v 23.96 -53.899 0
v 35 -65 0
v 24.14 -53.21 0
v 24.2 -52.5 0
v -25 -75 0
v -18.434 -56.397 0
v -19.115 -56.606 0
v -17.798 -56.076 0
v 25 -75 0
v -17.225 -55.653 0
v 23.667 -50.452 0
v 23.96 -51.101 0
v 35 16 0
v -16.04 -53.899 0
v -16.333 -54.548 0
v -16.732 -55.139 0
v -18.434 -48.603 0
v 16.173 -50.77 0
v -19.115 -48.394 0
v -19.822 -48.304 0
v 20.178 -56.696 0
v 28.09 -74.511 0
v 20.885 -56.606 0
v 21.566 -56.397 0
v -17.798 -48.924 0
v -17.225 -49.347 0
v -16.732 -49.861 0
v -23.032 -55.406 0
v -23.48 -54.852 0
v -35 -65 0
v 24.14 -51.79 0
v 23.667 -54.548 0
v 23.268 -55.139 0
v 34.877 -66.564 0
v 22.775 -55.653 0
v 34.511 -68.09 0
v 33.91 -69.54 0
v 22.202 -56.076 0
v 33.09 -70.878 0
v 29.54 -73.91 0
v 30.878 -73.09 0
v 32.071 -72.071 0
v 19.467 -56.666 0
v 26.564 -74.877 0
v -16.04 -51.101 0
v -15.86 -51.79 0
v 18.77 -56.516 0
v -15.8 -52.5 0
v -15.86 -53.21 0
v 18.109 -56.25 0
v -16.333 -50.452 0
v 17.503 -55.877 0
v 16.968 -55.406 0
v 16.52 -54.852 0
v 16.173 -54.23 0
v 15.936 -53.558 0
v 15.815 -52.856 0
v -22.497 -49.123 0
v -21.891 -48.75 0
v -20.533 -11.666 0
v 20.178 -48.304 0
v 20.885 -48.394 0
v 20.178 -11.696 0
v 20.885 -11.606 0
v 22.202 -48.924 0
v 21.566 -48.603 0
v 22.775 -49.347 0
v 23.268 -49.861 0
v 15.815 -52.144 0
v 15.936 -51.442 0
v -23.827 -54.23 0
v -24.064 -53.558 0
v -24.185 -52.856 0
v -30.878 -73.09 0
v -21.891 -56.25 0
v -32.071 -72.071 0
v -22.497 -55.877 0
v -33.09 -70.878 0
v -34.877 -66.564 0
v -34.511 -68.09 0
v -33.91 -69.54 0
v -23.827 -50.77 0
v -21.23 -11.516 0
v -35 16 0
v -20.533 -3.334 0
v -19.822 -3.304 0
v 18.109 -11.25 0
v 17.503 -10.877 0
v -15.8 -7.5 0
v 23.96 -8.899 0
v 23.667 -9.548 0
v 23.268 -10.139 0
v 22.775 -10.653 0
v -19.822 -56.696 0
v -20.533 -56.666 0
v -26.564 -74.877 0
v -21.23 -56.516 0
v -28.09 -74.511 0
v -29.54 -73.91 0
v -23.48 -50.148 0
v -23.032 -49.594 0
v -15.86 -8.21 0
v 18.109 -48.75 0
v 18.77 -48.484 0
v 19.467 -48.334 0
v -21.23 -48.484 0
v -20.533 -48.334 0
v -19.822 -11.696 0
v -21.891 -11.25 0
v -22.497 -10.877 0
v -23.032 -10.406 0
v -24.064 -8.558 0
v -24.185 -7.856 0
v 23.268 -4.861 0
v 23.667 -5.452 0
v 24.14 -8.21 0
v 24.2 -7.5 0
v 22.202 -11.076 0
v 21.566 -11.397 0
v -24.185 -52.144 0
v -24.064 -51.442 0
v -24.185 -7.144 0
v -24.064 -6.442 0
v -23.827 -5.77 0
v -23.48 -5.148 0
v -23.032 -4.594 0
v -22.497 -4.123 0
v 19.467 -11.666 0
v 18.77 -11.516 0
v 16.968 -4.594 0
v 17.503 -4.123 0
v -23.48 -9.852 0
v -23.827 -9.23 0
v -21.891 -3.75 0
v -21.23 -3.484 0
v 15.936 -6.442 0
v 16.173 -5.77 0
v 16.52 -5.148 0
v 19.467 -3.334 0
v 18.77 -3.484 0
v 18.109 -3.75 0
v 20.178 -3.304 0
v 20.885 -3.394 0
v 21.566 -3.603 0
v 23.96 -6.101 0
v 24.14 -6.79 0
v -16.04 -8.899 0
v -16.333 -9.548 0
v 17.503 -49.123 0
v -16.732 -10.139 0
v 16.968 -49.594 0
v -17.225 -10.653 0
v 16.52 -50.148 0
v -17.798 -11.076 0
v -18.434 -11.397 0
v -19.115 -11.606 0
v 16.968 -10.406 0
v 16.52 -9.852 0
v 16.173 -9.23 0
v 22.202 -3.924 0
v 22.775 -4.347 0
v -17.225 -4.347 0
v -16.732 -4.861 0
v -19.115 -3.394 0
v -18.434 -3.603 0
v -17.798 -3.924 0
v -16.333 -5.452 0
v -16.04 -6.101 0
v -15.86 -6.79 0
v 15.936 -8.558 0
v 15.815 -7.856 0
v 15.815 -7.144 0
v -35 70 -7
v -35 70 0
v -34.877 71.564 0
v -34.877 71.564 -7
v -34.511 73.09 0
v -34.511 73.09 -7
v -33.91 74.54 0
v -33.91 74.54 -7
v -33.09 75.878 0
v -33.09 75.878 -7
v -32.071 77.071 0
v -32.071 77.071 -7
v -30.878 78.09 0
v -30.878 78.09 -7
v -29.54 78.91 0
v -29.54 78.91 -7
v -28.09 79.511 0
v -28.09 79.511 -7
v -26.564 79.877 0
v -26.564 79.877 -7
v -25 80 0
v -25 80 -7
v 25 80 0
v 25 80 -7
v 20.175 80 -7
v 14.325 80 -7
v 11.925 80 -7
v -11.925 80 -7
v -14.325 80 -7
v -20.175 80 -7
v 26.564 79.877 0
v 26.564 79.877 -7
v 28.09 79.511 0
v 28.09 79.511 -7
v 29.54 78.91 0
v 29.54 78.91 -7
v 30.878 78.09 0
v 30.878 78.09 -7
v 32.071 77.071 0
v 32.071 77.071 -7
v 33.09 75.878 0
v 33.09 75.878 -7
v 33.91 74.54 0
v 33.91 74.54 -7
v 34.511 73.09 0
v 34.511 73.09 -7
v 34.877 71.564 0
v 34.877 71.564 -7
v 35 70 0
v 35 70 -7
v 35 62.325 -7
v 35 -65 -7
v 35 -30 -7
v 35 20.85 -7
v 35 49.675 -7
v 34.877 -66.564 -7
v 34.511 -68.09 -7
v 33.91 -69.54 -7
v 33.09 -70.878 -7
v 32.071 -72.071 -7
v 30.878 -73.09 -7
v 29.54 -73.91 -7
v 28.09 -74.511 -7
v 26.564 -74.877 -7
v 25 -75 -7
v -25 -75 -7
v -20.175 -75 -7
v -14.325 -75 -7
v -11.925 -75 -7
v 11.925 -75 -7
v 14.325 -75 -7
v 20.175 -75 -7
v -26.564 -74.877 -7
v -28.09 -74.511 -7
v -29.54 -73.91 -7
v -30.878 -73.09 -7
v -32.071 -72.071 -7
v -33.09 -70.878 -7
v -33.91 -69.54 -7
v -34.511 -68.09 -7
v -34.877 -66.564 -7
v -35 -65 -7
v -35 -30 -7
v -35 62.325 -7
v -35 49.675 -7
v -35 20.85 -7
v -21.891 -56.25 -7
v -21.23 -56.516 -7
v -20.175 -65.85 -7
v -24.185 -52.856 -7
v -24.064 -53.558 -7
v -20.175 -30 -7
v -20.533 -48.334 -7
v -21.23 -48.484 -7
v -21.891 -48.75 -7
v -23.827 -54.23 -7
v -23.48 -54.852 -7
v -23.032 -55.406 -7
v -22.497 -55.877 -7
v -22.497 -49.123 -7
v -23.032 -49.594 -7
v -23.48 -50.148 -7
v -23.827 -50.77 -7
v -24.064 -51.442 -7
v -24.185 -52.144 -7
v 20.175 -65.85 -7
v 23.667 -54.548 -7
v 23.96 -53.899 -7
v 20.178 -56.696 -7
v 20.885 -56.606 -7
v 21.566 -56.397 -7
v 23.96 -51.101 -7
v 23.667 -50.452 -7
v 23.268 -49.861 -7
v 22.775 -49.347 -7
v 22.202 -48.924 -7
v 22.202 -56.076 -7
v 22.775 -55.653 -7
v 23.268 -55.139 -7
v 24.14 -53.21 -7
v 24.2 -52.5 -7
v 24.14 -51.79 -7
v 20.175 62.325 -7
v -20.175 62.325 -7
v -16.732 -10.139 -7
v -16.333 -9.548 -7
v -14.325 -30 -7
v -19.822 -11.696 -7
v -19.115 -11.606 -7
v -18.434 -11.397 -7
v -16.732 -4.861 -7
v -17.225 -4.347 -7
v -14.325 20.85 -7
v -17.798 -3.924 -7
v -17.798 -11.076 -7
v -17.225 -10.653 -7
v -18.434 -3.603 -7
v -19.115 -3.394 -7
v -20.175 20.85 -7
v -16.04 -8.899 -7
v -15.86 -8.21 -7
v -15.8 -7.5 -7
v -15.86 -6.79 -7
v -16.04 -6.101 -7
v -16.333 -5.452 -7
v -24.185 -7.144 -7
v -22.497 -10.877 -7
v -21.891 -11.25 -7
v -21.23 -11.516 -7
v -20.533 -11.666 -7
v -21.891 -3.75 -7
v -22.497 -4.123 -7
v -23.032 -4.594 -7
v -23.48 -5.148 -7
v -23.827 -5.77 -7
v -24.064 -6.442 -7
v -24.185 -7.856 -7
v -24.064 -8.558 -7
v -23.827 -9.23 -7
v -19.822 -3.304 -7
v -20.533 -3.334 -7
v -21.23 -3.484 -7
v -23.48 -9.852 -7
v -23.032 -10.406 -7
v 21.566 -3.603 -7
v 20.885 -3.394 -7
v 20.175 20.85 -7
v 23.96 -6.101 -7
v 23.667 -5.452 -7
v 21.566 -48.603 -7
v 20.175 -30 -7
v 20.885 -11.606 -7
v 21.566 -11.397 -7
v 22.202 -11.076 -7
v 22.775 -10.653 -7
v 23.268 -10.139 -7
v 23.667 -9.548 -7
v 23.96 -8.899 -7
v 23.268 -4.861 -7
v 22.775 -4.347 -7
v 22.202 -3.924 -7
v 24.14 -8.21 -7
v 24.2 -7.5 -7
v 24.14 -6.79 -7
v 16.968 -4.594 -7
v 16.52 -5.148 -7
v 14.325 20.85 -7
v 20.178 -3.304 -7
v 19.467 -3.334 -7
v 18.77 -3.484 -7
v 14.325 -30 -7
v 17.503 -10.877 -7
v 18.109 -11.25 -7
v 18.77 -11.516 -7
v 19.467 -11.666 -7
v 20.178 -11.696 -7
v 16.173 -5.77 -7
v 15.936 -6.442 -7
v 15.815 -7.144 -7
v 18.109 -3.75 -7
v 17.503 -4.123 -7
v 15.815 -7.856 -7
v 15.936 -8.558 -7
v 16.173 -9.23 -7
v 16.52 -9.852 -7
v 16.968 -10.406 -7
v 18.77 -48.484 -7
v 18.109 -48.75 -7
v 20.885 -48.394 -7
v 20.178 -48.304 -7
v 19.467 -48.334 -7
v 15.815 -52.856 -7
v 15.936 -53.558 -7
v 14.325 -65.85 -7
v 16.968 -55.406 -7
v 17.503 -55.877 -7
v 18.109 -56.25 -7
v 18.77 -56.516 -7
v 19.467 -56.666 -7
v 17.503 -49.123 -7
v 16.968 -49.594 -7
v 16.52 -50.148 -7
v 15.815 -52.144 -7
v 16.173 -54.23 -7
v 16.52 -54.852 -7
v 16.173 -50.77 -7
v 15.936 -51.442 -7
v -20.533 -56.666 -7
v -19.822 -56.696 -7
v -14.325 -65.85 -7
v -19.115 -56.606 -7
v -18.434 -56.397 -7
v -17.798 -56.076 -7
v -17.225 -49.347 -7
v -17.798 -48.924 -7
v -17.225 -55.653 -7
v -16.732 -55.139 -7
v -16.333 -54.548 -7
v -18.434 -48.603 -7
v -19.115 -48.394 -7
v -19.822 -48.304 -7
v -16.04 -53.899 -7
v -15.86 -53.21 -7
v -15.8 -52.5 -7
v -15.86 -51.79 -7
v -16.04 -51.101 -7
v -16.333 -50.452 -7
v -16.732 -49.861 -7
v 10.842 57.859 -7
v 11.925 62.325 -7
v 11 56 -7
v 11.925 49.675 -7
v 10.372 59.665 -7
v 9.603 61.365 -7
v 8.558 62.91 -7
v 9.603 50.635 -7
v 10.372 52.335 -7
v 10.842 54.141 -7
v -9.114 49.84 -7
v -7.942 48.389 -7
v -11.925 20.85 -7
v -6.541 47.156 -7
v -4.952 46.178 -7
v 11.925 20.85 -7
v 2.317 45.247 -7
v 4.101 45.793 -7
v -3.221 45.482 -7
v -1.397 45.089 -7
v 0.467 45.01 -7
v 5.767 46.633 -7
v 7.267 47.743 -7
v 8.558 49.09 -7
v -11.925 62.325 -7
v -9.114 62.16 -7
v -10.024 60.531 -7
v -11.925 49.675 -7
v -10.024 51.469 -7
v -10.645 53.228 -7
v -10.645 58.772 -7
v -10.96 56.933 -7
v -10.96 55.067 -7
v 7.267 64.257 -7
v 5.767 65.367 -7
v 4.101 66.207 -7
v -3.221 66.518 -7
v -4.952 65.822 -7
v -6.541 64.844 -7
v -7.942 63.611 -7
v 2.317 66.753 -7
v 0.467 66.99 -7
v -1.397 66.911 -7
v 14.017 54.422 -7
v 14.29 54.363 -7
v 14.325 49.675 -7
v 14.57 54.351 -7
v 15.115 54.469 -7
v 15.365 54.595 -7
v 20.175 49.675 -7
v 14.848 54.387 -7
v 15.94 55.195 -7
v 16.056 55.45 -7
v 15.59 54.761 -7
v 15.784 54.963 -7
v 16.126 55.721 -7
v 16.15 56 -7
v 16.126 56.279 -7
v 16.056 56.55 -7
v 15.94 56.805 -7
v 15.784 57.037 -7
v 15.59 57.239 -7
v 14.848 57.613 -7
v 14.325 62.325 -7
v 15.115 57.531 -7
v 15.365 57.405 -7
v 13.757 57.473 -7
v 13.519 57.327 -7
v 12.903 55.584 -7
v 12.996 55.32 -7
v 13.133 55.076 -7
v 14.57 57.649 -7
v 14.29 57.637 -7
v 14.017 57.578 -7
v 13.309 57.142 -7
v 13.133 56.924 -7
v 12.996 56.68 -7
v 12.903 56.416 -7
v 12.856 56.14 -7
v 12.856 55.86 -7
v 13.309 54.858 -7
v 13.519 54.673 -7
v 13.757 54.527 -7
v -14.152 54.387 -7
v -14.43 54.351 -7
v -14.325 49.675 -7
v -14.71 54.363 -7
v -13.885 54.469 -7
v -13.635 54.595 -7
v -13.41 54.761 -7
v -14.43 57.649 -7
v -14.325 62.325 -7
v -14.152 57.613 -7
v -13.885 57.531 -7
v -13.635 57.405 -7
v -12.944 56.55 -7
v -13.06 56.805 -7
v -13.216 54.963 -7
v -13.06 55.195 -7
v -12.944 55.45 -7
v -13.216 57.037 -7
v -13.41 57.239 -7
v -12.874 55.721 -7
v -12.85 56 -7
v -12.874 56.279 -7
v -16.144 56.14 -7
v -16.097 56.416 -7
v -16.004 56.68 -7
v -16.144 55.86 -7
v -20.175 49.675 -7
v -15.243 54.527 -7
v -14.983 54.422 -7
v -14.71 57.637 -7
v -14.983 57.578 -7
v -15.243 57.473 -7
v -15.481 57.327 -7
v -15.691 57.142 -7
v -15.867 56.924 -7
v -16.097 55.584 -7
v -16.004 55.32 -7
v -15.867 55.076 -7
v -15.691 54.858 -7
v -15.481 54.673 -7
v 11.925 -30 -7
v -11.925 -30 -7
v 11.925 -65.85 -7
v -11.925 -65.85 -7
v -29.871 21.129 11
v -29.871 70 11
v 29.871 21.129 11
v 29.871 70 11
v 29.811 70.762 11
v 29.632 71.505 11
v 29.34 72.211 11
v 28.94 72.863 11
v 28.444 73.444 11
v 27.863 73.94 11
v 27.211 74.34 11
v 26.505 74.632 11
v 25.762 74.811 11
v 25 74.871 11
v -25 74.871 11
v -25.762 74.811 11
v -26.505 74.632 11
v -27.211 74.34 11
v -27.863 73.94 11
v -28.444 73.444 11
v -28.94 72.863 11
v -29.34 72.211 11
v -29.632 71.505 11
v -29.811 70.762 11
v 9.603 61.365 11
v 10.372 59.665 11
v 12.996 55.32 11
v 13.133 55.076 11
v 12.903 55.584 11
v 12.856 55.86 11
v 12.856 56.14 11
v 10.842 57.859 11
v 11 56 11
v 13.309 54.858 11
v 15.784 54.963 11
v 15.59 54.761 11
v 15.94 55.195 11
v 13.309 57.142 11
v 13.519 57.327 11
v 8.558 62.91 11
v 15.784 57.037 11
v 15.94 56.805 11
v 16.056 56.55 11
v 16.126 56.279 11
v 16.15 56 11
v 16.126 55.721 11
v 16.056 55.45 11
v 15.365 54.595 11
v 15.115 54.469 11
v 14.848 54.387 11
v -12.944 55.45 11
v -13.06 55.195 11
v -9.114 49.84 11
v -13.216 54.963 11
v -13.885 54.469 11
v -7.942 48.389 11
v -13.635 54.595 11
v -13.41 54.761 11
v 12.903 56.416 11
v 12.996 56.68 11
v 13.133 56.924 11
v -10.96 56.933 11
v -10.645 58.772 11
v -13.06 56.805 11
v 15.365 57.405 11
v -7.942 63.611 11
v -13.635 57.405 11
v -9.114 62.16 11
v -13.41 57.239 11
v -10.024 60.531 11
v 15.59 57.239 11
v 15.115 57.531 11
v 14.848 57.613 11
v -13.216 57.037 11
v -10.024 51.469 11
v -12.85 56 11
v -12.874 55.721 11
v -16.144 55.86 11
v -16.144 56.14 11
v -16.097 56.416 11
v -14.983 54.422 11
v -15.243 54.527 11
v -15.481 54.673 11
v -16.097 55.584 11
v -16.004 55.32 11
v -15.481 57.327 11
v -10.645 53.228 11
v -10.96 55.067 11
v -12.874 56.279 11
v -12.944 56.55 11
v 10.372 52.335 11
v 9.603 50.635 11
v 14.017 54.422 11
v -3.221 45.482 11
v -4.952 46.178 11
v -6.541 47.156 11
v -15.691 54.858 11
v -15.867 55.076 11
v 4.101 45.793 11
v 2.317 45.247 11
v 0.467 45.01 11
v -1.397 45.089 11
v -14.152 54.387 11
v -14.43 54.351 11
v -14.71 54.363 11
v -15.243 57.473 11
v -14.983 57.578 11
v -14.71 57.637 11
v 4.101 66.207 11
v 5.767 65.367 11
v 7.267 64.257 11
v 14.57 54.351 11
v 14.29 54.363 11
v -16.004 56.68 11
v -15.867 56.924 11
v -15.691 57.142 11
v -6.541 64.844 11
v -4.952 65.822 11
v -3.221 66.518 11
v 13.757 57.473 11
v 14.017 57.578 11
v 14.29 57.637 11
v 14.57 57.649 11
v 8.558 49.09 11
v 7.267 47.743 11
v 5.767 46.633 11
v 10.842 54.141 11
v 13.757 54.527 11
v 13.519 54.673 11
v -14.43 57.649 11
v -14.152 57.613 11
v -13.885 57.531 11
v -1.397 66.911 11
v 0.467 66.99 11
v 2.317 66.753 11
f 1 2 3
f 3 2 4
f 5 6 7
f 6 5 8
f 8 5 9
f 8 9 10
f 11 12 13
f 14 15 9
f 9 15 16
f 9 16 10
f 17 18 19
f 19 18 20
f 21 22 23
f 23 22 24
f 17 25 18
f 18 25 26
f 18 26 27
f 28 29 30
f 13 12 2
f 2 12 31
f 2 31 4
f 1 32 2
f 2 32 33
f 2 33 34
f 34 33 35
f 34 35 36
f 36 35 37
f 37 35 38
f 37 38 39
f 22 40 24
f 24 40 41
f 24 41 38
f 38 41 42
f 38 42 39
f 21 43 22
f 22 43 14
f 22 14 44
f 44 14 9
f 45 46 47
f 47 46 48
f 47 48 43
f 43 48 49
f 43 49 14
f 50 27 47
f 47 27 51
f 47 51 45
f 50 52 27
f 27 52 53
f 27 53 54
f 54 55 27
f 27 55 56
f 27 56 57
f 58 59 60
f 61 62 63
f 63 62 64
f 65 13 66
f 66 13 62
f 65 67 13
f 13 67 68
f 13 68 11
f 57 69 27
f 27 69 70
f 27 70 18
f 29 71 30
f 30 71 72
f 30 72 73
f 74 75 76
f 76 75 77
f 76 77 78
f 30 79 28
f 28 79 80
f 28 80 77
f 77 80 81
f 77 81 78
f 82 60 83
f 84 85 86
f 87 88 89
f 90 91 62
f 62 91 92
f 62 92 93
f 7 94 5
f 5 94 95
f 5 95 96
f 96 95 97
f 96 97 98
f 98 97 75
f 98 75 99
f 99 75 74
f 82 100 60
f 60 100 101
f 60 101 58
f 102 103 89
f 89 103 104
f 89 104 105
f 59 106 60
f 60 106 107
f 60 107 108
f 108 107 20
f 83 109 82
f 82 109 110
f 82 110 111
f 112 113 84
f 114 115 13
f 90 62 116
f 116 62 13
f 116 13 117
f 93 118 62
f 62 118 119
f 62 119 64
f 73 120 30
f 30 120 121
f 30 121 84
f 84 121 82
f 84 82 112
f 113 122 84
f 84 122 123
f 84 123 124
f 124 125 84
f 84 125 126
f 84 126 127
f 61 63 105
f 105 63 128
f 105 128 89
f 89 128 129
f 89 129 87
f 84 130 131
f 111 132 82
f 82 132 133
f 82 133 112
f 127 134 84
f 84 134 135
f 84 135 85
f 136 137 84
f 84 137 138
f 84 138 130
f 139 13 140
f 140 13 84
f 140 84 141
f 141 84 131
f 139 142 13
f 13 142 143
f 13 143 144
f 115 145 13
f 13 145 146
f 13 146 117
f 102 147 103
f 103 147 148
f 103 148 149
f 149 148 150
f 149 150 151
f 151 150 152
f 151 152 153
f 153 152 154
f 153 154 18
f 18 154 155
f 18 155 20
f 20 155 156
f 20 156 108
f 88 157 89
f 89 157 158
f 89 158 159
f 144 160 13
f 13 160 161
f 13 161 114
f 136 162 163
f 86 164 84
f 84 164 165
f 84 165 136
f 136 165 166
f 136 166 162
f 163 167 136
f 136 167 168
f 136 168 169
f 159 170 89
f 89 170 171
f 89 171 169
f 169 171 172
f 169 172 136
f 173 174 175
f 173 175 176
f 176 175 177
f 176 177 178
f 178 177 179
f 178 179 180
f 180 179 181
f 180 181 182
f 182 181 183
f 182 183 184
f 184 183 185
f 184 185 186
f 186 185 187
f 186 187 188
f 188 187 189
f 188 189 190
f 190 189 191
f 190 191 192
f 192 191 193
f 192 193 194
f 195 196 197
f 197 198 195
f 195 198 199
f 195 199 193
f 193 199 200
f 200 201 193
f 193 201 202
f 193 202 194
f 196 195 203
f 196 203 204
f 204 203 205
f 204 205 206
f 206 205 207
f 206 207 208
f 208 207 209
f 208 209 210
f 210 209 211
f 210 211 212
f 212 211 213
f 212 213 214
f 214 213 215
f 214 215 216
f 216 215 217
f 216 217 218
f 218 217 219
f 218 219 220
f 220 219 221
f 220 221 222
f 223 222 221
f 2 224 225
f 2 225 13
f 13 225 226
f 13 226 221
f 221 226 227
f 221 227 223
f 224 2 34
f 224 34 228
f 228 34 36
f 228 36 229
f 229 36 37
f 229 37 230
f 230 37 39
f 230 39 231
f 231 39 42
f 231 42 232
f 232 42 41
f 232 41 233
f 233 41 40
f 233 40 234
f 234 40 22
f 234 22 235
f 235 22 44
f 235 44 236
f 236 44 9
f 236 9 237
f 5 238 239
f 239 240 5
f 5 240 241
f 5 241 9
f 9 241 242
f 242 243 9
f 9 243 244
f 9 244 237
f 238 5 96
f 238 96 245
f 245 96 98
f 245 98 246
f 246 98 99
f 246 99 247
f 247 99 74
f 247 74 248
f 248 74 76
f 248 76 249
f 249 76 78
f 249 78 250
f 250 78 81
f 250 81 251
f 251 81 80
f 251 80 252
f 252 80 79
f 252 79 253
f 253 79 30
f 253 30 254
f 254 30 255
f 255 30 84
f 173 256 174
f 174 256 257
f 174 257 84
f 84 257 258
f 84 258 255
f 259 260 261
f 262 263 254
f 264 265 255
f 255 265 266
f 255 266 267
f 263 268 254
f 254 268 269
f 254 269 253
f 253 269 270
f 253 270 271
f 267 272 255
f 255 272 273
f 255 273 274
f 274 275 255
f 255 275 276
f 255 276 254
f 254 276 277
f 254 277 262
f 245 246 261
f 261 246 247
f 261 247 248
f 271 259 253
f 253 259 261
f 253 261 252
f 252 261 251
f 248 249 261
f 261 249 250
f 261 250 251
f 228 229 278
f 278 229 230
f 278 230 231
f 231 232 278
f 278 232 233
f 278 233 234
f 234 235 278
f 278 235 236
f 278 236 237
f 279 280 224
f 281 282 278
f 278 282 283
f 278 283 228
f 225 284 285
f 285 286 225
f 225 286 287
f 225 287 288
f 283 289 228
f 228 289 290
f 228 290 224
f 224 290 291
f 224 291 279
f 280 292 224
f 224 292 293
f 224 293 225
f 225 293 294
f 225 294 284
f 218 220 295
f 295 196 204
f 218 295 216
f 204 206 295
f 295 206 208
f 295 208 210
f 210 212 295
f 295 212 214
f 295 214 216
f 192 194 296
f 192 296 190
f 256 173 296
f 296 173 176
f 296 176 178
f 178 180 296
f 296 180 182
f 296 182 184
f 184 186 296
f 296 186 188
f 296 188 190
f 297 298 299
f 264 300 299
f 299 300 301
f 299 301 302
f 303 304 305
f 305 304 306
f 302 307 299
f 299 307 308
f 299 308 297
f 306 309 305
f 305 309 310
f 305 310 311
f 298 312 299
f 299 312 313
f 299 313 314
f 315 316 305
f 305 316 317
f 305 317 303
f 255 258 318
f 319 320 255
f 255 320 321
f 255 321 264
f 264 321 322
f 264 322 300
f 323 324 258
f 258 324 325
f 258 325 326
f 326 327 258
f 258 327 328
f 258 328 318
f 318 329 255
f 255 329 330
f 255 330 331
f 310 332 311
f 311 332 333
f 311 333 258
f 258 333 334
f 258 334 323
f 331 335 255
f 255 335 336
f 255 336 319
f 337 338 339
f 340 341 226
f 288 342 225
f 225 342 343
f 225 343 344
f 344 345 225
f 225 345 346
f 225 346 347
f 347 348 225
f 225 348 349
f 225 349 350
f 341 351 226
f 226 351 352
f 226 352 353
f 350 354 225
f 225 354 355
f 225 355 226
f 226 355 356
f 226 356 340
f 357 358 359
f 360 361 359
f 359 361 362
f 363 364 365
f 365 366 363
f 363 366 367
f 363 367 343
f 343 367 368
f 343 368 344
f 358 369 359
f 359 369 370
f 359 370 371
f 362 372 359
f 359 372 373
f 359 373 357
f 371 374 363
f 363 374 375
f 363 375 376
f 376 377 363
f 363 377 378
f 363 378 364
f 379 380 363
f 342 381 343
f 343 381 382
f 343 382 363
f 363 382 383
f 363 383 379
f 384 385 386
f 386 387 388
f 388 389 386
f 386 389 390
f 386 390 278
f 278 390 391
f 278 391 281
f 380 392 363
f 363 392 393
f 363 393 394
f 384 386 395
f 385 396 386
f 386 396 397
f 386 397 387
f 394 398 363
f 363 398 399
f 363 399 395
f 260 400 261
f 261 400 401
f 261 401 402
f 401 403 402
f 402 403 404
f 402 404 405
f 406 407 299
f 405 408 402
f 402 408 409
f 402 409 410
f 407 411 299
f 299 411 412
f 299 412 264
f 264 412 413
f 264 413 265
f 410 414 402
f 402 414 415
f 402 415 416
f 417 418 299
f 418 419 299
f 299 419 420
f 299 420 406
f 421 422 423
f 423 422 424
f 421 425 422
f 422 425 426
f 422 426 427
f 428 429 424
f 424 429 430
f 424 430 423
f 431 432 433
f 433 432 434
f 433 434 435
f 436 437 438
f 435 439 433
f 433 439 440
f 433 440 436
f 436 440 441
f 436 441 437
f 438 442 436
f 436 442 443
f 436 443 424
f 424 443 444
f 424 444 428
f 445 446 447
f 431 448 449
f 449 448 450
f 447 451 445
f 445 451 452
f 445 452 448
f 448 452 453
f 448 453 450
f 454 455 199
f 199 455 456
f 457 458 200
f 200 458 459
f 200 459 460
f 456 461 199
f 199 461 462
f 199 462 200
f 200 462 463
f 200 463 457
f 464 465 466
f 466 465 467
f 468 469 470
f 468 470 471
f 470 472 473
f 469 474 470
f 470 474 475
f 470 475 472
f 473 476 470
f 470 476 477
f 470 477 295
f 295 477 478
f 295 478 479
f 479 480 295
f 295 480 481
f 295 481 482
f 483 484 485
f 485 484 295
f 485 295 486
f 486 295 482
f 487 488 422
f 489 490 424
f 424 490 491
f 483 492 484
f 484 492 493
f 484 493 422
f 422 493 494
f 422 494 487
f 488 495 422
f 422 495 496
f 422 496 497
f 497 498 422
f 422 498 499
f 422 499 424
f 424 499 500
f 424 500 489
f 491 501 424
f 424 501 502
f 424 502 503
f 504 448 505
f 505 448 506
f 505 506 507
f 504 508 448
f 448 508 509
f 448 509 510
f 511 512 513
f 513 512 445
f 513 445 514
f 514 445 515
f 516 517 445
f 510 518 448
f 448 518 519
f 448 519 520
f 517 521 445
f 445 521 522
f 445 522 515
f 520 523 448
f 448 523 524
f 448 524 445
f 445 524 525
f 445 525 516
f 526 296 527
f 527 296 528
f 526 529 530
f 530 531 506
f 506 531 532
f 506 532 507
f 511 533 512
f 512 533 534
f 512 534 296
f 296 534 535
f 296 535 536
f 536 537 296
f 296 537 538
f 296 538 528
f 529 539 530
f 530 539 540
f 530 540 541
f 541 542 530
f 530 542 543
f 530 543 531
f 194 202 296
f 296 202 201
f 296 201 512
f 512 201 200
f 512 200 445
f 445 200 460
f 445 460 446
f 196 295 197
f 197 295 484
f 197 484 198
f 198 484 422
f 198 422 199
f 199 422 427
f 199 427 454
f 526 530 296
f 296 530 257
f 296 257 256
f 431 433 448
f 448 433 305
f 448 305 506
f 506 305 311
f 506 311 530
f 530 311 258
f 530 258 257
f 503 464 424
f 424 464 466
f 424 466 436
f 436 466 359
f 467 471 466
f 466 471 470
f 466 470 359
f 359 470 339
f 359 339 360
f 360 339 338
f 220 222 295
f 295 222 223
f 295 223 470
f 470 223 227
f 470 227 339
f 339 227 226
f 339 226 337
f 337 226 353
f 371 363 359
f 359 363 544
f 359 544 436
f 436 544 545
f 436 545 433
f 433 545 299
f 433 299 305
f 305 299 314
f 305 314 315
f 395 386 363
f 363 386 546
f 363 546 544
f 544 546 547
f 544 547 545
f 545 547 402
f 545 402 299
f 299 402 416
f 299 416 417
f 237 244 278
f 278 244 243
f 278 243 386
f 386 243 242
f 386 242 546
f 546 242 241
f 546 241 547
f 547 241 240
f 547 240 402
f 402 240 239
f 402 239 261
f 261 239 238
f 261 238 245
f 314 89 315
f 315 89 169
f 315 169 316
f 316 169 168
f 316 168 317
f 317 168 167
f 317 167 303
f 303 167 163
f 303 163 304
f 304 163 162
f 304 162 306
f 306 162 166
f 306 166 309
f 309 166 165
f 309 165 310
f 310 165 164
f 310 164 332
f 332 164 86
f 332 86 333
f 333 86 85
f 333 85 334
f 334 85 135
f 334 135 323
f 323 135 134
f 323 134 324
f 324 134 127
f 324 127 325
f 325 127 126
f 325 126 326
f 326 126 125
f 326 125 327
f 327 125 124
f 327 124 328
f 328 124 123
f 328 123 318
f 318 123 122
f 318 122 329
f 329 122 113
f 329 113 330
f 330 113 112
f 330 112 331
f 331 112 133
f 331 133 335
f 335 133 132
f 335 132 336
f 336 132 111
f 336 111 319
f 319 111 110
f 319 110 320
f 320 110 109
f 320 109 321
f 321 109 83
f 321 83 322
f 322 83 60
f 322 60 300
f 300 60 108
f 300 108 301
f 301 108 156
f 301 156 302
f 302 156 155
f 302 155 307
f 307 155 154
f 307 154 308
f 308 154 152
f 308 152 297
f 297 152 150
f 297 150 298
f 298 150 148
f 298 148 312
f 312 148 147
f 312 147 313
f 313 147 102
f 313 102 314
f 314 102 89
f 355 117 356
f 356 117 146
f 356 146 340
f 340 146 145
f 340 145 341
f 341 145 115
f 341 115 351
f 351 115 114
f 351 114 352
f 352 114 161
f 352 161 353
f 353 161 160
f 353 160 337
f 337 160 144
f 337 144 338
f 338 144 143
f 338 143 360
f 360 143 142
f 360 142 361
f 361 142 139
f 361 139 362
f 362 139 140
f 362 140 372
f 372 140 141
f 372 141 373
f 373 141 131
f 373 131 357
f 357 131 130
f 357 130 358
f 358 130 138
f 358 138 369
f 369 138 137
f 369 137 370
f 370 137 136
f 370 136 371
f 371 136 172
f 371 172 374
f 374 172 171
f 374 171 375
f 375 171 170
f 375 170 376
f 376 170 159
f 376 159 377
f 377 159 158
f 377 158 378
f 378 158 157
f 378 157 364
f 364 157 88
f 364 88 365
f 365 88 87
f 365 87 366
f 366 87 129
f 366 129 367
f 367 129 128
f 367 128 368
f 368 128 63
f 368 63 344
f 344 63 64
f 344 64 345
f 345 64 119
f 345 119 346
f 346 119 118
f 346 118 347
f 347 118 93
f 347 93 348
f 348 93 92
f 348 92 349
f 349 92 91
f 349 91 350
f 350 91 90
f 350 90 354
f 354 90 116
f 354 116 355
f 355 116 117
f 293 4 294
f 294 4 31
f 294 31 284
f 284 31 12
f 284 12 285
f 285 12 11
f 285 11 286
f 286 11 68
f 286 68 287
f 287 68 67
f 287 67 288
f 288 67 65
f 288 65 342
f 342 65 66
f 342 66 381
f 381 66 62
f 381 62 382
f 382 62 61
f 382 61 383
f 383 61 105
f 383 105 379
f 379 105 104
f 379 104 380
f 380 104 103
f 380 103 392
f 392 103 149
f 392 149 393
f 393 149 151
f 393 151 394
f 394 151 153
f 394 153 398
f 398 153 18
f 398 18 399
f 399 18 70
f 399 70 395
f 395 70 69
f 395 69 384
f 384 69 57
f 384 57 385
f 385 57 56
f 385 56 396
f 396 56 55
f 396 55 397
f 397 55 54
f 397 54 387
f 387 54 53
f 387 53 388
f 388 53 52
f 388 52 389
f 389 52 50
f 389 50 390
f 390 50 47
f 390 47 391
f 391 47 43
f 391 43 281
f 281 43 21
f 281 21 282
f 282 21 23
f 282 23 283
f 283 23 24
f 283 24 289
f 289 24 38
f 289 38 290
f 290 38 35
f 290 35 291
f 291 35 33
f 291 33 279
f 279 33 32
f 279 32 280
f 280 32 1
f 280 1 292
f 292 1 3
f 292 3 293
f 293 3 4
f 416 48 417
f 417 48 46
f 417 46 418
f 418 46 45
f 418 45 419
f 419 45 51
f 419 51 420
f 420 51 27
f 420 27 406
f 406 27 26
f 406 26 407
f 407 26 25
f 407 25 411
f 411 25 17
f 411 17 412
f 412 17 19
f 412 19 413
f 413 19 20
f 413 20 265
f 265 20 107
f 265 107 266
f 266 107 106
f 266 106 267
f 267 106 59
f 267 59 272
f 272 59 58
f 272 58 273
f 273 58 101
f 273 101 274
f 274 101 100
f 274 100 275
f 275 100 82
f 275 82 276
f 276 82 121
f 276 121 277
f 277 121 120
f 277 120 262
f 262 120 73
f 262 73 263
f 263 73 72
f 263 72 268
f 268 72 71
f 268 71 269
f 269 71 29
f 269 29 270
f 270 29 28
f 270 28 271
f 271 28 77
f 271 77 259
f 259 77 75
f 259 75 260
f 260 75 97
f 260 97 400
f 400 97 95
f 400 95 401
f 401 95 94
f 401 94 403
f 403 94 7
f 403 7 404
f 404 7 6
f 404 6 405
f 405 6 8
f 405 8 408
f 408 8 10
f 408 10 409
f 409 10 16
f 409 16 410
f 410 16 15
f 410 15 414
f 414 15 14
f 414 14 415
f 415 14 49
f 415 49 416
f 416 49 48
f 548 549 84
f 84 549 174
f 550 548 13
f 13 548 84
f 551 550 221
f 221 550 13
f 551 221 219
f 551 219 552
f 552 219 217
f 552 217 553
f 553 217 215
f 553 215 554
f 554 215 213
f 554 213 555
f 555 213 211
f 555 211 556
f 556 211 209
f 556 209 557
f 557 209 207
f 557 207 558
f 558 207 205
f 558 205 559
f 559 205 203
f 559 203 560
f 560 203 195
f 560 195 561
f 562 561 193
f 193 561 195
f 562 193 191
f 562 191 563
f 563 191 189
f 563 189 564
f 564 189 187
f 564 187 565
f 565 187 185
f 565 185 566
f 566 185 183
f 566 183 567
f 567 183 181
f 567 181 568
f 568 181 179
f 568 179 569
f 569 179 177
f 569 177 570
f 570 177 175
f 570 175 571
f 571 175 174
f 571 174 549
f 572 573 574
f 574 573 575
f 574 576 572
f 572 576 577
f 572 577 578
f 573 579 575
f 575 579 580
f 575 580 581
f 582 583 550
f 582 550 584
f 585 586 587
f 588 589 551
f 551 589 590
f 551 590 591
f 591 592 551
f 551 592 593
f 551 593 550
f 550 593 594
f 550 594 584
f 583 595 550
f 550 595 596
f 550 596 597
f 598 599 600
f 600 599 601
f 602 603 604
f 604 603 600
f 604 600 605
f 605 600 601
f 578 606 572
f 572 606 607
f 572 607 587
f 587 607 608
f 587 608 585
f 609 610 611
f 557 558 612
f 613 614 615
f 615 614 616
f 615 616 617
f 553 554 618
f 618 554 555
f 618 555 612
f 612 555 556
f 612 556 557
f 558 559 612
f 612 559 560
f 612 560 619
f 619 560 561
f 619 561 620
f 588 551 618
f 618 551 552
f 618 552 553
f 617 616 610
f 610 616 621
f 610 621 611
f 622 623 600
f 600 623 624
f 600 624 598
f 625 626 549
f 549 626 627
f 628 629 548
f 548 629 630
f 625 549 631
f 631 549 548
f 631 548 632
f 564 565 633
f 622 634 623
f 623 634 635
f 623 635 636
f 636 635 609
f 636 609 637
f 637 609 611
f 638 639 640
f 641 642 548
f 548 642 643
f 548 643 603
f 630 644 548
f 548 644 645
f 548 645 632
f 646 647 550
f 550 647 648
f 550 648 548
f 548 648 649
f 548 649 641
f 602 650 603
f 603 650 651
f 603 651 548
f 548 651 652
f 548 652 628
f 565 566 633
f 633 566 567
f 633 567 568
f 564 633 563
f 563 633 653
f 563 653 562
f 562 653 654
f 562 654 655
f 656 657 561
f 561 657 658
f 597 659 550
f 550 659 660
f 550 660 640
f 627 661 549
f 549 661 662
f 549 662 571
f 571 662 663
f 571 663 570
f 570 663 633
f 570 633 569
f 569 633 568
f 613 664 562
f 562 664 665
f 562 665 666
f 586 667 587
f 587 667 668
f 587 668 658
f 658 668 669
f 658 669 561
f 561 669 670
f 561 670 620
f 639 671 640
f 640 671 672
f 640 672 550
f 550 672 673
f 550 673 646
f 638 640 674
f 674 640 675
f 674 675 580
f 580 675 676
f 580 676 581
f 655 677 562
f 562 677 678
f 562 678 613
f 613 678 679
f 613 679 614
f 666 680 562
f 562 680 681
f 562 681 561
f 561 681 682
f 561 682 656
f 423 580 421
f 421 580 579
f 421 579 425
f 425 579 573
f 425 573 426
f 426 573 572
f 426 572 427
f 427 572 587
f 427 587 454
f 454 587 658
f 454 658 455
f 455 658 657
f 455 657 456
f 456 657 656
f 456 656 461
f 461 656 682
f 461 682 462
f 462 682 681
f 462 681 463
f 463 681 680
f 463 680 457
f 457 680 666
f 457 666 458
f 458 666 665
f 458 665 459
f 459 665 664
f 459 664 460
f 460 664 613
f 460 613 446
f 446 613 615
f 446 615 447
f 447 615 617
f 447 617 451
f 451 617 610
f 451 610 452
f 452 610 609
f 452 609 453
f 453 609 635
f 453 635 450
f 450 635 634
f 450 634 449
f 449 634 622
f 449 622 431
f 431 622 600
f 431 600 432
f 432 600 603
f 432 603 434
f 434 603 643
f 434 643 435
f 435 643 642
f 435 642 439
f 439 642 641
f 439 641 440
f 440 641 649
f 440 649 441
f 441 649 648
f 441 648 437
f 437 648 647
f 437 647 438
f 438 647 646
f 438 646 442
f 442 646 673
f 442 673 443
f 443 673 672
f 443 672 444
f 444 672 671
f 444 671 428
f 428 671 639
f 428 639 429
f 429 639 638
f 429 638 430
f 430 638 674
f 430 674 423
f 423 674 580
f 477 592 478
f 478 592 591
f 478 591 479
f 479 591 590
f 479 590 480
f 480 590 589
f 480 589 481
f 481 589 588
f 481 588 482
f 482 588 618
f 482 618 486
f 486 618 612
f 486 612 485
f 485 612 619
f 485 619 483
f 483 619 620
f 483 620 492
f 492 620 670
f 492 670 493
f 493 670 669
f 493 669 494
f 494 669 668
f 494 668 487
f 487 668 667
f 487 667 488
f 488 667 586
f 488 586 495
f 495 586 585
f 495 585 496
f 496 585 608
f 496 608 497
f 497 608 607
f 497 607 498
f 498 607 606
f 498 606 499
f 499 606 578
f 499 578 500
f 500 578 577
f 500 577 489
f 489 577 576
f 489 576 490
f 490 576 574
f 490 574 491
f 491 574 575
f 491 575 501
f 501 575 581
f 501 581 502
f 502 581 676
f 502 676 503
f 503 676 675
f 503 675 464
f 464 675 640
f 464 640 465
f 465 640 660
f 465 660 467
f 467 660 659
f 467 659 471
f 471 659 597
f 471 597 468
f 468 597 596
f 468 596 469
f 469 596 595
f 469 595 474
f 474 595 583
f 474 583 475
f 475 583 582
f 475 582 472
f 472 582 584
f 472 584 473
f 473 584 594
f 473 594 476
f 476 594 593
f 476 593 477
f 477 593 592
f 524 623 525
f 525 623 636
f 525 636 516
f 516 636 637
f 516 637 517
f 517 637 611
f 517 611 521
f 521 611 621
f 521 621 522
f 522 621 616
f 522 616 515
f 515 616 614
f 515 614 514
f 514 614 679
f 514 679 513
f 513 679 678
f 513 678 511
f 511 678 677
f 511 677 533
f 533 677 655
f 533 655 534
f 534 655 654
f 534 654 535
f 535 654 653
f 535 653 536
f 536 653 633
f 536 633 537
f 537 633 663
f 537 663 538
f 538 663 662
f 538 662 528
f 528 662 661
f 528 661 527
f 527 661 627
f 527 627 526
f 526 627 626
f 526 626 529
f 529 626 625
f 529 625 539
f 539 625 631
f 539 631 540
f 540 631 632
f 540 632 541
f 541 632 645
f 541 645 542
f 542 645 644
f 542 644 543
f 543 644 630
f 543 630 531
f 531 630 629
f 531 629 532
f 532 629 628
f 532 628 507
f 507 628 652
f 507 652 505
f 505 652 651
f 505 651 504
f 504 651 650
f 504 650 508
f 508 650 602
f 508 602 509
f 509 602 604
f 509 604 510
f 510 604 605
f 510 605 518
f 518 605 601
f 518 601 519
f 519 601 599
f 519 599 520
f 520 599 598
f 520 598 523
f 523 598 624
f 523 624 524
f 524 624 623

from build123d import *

# Parameters (mm, degrees)
SKETCH1_R           = 4.2
BOSS_EXTRUDE1_DEPTH = 7
BOSS_EXTRUDE2_DEPTH = 11
BOSS_EXTRUDE2_TAPER = 25
SKETCH5_R           = 1.65
SKETCH5_R_2         = 11
CUT_EXTRUDE1_DEPTH  = 19


with BuildPart() as part:
    # Sketch1 → Boss-Extrude1 (new body)
    with BuildSketch(Plane.XY):
        with BuildLine():
            Line((-25, 80), (25, 80))
            ThreePointArc((25, 80), (32.071067812, 77.071067812), (35, 70))
            Line((35, 70), (35, -65))
            ThreePointArc((35, -65), (32.071067812, -72.071067812), (25, -75))
            Line((25, -75), (-25, -75))
            ThreePointArc((-25, -75), (-32.071067812, -72.071067812), (-35, -65))
            Line((-35, -65), (-35, 70))
            ThreePointArc((-35, 70), (-32.071067812, 77.071067812), (-25, 80))
        make_face()
        with Locations((-20, -7.5)):
            Circle(SKETCH1_R, mode=Mode.SUBTRACT)
        with Locations((20, -7.5)):
            Circle(SKETCH1_R, mode=Mode.SUBTRACT)
        with Locations((20, -52.5)):
            Circle(SKETCH1_R, mode=Mode.SUBTRACT)
        with Locations((-20, -52.5)):
            Circle(SKETCH1_R, mode=Mode.SUBTRACT)
    extrude(amount=-BOSS_EXTRUDE1_DEPTH)

    # Sketch3 → Boss-Extrude2 (add)
    with BuildSketch(Plane.XY):
        with BuildLine():
            Line((-35, 16), (35, 16))
            Line((35, 16), (35, 70))
            ThreePointArc((35, 70), (32.071067812, 77.071067812), (25, 80))
            Line((25, 80), (-25, 80))
            ThreePointArc((-25, 80), (-32.071067812, 77.071067812), (-35, 70))
            Line((-35, 70), (-35, 16))
        make_face()
    extrude(amount=BOSS_EXTRUDE2_DEPTH, taper=BOSS_EXTRUDE2_TAPER)

    # Sketch5 → Cut-Extrude1 (cut, through all)
    with BuildSketch(Plane.XY.offset(11)):
        with Locations((-14.5, 56)):
            Circle(SKETCH5_R)
        with Locations((14.5, 56)):
            Circle(SKETCH5_R)
        with Locations((0, 56)):
            Circle(SKETCH5_R_2)
    extrude(amount=-CUT_EXTRUDE1_DEPTH, mode=Mode.SUBTRACT)


solid = part.part
